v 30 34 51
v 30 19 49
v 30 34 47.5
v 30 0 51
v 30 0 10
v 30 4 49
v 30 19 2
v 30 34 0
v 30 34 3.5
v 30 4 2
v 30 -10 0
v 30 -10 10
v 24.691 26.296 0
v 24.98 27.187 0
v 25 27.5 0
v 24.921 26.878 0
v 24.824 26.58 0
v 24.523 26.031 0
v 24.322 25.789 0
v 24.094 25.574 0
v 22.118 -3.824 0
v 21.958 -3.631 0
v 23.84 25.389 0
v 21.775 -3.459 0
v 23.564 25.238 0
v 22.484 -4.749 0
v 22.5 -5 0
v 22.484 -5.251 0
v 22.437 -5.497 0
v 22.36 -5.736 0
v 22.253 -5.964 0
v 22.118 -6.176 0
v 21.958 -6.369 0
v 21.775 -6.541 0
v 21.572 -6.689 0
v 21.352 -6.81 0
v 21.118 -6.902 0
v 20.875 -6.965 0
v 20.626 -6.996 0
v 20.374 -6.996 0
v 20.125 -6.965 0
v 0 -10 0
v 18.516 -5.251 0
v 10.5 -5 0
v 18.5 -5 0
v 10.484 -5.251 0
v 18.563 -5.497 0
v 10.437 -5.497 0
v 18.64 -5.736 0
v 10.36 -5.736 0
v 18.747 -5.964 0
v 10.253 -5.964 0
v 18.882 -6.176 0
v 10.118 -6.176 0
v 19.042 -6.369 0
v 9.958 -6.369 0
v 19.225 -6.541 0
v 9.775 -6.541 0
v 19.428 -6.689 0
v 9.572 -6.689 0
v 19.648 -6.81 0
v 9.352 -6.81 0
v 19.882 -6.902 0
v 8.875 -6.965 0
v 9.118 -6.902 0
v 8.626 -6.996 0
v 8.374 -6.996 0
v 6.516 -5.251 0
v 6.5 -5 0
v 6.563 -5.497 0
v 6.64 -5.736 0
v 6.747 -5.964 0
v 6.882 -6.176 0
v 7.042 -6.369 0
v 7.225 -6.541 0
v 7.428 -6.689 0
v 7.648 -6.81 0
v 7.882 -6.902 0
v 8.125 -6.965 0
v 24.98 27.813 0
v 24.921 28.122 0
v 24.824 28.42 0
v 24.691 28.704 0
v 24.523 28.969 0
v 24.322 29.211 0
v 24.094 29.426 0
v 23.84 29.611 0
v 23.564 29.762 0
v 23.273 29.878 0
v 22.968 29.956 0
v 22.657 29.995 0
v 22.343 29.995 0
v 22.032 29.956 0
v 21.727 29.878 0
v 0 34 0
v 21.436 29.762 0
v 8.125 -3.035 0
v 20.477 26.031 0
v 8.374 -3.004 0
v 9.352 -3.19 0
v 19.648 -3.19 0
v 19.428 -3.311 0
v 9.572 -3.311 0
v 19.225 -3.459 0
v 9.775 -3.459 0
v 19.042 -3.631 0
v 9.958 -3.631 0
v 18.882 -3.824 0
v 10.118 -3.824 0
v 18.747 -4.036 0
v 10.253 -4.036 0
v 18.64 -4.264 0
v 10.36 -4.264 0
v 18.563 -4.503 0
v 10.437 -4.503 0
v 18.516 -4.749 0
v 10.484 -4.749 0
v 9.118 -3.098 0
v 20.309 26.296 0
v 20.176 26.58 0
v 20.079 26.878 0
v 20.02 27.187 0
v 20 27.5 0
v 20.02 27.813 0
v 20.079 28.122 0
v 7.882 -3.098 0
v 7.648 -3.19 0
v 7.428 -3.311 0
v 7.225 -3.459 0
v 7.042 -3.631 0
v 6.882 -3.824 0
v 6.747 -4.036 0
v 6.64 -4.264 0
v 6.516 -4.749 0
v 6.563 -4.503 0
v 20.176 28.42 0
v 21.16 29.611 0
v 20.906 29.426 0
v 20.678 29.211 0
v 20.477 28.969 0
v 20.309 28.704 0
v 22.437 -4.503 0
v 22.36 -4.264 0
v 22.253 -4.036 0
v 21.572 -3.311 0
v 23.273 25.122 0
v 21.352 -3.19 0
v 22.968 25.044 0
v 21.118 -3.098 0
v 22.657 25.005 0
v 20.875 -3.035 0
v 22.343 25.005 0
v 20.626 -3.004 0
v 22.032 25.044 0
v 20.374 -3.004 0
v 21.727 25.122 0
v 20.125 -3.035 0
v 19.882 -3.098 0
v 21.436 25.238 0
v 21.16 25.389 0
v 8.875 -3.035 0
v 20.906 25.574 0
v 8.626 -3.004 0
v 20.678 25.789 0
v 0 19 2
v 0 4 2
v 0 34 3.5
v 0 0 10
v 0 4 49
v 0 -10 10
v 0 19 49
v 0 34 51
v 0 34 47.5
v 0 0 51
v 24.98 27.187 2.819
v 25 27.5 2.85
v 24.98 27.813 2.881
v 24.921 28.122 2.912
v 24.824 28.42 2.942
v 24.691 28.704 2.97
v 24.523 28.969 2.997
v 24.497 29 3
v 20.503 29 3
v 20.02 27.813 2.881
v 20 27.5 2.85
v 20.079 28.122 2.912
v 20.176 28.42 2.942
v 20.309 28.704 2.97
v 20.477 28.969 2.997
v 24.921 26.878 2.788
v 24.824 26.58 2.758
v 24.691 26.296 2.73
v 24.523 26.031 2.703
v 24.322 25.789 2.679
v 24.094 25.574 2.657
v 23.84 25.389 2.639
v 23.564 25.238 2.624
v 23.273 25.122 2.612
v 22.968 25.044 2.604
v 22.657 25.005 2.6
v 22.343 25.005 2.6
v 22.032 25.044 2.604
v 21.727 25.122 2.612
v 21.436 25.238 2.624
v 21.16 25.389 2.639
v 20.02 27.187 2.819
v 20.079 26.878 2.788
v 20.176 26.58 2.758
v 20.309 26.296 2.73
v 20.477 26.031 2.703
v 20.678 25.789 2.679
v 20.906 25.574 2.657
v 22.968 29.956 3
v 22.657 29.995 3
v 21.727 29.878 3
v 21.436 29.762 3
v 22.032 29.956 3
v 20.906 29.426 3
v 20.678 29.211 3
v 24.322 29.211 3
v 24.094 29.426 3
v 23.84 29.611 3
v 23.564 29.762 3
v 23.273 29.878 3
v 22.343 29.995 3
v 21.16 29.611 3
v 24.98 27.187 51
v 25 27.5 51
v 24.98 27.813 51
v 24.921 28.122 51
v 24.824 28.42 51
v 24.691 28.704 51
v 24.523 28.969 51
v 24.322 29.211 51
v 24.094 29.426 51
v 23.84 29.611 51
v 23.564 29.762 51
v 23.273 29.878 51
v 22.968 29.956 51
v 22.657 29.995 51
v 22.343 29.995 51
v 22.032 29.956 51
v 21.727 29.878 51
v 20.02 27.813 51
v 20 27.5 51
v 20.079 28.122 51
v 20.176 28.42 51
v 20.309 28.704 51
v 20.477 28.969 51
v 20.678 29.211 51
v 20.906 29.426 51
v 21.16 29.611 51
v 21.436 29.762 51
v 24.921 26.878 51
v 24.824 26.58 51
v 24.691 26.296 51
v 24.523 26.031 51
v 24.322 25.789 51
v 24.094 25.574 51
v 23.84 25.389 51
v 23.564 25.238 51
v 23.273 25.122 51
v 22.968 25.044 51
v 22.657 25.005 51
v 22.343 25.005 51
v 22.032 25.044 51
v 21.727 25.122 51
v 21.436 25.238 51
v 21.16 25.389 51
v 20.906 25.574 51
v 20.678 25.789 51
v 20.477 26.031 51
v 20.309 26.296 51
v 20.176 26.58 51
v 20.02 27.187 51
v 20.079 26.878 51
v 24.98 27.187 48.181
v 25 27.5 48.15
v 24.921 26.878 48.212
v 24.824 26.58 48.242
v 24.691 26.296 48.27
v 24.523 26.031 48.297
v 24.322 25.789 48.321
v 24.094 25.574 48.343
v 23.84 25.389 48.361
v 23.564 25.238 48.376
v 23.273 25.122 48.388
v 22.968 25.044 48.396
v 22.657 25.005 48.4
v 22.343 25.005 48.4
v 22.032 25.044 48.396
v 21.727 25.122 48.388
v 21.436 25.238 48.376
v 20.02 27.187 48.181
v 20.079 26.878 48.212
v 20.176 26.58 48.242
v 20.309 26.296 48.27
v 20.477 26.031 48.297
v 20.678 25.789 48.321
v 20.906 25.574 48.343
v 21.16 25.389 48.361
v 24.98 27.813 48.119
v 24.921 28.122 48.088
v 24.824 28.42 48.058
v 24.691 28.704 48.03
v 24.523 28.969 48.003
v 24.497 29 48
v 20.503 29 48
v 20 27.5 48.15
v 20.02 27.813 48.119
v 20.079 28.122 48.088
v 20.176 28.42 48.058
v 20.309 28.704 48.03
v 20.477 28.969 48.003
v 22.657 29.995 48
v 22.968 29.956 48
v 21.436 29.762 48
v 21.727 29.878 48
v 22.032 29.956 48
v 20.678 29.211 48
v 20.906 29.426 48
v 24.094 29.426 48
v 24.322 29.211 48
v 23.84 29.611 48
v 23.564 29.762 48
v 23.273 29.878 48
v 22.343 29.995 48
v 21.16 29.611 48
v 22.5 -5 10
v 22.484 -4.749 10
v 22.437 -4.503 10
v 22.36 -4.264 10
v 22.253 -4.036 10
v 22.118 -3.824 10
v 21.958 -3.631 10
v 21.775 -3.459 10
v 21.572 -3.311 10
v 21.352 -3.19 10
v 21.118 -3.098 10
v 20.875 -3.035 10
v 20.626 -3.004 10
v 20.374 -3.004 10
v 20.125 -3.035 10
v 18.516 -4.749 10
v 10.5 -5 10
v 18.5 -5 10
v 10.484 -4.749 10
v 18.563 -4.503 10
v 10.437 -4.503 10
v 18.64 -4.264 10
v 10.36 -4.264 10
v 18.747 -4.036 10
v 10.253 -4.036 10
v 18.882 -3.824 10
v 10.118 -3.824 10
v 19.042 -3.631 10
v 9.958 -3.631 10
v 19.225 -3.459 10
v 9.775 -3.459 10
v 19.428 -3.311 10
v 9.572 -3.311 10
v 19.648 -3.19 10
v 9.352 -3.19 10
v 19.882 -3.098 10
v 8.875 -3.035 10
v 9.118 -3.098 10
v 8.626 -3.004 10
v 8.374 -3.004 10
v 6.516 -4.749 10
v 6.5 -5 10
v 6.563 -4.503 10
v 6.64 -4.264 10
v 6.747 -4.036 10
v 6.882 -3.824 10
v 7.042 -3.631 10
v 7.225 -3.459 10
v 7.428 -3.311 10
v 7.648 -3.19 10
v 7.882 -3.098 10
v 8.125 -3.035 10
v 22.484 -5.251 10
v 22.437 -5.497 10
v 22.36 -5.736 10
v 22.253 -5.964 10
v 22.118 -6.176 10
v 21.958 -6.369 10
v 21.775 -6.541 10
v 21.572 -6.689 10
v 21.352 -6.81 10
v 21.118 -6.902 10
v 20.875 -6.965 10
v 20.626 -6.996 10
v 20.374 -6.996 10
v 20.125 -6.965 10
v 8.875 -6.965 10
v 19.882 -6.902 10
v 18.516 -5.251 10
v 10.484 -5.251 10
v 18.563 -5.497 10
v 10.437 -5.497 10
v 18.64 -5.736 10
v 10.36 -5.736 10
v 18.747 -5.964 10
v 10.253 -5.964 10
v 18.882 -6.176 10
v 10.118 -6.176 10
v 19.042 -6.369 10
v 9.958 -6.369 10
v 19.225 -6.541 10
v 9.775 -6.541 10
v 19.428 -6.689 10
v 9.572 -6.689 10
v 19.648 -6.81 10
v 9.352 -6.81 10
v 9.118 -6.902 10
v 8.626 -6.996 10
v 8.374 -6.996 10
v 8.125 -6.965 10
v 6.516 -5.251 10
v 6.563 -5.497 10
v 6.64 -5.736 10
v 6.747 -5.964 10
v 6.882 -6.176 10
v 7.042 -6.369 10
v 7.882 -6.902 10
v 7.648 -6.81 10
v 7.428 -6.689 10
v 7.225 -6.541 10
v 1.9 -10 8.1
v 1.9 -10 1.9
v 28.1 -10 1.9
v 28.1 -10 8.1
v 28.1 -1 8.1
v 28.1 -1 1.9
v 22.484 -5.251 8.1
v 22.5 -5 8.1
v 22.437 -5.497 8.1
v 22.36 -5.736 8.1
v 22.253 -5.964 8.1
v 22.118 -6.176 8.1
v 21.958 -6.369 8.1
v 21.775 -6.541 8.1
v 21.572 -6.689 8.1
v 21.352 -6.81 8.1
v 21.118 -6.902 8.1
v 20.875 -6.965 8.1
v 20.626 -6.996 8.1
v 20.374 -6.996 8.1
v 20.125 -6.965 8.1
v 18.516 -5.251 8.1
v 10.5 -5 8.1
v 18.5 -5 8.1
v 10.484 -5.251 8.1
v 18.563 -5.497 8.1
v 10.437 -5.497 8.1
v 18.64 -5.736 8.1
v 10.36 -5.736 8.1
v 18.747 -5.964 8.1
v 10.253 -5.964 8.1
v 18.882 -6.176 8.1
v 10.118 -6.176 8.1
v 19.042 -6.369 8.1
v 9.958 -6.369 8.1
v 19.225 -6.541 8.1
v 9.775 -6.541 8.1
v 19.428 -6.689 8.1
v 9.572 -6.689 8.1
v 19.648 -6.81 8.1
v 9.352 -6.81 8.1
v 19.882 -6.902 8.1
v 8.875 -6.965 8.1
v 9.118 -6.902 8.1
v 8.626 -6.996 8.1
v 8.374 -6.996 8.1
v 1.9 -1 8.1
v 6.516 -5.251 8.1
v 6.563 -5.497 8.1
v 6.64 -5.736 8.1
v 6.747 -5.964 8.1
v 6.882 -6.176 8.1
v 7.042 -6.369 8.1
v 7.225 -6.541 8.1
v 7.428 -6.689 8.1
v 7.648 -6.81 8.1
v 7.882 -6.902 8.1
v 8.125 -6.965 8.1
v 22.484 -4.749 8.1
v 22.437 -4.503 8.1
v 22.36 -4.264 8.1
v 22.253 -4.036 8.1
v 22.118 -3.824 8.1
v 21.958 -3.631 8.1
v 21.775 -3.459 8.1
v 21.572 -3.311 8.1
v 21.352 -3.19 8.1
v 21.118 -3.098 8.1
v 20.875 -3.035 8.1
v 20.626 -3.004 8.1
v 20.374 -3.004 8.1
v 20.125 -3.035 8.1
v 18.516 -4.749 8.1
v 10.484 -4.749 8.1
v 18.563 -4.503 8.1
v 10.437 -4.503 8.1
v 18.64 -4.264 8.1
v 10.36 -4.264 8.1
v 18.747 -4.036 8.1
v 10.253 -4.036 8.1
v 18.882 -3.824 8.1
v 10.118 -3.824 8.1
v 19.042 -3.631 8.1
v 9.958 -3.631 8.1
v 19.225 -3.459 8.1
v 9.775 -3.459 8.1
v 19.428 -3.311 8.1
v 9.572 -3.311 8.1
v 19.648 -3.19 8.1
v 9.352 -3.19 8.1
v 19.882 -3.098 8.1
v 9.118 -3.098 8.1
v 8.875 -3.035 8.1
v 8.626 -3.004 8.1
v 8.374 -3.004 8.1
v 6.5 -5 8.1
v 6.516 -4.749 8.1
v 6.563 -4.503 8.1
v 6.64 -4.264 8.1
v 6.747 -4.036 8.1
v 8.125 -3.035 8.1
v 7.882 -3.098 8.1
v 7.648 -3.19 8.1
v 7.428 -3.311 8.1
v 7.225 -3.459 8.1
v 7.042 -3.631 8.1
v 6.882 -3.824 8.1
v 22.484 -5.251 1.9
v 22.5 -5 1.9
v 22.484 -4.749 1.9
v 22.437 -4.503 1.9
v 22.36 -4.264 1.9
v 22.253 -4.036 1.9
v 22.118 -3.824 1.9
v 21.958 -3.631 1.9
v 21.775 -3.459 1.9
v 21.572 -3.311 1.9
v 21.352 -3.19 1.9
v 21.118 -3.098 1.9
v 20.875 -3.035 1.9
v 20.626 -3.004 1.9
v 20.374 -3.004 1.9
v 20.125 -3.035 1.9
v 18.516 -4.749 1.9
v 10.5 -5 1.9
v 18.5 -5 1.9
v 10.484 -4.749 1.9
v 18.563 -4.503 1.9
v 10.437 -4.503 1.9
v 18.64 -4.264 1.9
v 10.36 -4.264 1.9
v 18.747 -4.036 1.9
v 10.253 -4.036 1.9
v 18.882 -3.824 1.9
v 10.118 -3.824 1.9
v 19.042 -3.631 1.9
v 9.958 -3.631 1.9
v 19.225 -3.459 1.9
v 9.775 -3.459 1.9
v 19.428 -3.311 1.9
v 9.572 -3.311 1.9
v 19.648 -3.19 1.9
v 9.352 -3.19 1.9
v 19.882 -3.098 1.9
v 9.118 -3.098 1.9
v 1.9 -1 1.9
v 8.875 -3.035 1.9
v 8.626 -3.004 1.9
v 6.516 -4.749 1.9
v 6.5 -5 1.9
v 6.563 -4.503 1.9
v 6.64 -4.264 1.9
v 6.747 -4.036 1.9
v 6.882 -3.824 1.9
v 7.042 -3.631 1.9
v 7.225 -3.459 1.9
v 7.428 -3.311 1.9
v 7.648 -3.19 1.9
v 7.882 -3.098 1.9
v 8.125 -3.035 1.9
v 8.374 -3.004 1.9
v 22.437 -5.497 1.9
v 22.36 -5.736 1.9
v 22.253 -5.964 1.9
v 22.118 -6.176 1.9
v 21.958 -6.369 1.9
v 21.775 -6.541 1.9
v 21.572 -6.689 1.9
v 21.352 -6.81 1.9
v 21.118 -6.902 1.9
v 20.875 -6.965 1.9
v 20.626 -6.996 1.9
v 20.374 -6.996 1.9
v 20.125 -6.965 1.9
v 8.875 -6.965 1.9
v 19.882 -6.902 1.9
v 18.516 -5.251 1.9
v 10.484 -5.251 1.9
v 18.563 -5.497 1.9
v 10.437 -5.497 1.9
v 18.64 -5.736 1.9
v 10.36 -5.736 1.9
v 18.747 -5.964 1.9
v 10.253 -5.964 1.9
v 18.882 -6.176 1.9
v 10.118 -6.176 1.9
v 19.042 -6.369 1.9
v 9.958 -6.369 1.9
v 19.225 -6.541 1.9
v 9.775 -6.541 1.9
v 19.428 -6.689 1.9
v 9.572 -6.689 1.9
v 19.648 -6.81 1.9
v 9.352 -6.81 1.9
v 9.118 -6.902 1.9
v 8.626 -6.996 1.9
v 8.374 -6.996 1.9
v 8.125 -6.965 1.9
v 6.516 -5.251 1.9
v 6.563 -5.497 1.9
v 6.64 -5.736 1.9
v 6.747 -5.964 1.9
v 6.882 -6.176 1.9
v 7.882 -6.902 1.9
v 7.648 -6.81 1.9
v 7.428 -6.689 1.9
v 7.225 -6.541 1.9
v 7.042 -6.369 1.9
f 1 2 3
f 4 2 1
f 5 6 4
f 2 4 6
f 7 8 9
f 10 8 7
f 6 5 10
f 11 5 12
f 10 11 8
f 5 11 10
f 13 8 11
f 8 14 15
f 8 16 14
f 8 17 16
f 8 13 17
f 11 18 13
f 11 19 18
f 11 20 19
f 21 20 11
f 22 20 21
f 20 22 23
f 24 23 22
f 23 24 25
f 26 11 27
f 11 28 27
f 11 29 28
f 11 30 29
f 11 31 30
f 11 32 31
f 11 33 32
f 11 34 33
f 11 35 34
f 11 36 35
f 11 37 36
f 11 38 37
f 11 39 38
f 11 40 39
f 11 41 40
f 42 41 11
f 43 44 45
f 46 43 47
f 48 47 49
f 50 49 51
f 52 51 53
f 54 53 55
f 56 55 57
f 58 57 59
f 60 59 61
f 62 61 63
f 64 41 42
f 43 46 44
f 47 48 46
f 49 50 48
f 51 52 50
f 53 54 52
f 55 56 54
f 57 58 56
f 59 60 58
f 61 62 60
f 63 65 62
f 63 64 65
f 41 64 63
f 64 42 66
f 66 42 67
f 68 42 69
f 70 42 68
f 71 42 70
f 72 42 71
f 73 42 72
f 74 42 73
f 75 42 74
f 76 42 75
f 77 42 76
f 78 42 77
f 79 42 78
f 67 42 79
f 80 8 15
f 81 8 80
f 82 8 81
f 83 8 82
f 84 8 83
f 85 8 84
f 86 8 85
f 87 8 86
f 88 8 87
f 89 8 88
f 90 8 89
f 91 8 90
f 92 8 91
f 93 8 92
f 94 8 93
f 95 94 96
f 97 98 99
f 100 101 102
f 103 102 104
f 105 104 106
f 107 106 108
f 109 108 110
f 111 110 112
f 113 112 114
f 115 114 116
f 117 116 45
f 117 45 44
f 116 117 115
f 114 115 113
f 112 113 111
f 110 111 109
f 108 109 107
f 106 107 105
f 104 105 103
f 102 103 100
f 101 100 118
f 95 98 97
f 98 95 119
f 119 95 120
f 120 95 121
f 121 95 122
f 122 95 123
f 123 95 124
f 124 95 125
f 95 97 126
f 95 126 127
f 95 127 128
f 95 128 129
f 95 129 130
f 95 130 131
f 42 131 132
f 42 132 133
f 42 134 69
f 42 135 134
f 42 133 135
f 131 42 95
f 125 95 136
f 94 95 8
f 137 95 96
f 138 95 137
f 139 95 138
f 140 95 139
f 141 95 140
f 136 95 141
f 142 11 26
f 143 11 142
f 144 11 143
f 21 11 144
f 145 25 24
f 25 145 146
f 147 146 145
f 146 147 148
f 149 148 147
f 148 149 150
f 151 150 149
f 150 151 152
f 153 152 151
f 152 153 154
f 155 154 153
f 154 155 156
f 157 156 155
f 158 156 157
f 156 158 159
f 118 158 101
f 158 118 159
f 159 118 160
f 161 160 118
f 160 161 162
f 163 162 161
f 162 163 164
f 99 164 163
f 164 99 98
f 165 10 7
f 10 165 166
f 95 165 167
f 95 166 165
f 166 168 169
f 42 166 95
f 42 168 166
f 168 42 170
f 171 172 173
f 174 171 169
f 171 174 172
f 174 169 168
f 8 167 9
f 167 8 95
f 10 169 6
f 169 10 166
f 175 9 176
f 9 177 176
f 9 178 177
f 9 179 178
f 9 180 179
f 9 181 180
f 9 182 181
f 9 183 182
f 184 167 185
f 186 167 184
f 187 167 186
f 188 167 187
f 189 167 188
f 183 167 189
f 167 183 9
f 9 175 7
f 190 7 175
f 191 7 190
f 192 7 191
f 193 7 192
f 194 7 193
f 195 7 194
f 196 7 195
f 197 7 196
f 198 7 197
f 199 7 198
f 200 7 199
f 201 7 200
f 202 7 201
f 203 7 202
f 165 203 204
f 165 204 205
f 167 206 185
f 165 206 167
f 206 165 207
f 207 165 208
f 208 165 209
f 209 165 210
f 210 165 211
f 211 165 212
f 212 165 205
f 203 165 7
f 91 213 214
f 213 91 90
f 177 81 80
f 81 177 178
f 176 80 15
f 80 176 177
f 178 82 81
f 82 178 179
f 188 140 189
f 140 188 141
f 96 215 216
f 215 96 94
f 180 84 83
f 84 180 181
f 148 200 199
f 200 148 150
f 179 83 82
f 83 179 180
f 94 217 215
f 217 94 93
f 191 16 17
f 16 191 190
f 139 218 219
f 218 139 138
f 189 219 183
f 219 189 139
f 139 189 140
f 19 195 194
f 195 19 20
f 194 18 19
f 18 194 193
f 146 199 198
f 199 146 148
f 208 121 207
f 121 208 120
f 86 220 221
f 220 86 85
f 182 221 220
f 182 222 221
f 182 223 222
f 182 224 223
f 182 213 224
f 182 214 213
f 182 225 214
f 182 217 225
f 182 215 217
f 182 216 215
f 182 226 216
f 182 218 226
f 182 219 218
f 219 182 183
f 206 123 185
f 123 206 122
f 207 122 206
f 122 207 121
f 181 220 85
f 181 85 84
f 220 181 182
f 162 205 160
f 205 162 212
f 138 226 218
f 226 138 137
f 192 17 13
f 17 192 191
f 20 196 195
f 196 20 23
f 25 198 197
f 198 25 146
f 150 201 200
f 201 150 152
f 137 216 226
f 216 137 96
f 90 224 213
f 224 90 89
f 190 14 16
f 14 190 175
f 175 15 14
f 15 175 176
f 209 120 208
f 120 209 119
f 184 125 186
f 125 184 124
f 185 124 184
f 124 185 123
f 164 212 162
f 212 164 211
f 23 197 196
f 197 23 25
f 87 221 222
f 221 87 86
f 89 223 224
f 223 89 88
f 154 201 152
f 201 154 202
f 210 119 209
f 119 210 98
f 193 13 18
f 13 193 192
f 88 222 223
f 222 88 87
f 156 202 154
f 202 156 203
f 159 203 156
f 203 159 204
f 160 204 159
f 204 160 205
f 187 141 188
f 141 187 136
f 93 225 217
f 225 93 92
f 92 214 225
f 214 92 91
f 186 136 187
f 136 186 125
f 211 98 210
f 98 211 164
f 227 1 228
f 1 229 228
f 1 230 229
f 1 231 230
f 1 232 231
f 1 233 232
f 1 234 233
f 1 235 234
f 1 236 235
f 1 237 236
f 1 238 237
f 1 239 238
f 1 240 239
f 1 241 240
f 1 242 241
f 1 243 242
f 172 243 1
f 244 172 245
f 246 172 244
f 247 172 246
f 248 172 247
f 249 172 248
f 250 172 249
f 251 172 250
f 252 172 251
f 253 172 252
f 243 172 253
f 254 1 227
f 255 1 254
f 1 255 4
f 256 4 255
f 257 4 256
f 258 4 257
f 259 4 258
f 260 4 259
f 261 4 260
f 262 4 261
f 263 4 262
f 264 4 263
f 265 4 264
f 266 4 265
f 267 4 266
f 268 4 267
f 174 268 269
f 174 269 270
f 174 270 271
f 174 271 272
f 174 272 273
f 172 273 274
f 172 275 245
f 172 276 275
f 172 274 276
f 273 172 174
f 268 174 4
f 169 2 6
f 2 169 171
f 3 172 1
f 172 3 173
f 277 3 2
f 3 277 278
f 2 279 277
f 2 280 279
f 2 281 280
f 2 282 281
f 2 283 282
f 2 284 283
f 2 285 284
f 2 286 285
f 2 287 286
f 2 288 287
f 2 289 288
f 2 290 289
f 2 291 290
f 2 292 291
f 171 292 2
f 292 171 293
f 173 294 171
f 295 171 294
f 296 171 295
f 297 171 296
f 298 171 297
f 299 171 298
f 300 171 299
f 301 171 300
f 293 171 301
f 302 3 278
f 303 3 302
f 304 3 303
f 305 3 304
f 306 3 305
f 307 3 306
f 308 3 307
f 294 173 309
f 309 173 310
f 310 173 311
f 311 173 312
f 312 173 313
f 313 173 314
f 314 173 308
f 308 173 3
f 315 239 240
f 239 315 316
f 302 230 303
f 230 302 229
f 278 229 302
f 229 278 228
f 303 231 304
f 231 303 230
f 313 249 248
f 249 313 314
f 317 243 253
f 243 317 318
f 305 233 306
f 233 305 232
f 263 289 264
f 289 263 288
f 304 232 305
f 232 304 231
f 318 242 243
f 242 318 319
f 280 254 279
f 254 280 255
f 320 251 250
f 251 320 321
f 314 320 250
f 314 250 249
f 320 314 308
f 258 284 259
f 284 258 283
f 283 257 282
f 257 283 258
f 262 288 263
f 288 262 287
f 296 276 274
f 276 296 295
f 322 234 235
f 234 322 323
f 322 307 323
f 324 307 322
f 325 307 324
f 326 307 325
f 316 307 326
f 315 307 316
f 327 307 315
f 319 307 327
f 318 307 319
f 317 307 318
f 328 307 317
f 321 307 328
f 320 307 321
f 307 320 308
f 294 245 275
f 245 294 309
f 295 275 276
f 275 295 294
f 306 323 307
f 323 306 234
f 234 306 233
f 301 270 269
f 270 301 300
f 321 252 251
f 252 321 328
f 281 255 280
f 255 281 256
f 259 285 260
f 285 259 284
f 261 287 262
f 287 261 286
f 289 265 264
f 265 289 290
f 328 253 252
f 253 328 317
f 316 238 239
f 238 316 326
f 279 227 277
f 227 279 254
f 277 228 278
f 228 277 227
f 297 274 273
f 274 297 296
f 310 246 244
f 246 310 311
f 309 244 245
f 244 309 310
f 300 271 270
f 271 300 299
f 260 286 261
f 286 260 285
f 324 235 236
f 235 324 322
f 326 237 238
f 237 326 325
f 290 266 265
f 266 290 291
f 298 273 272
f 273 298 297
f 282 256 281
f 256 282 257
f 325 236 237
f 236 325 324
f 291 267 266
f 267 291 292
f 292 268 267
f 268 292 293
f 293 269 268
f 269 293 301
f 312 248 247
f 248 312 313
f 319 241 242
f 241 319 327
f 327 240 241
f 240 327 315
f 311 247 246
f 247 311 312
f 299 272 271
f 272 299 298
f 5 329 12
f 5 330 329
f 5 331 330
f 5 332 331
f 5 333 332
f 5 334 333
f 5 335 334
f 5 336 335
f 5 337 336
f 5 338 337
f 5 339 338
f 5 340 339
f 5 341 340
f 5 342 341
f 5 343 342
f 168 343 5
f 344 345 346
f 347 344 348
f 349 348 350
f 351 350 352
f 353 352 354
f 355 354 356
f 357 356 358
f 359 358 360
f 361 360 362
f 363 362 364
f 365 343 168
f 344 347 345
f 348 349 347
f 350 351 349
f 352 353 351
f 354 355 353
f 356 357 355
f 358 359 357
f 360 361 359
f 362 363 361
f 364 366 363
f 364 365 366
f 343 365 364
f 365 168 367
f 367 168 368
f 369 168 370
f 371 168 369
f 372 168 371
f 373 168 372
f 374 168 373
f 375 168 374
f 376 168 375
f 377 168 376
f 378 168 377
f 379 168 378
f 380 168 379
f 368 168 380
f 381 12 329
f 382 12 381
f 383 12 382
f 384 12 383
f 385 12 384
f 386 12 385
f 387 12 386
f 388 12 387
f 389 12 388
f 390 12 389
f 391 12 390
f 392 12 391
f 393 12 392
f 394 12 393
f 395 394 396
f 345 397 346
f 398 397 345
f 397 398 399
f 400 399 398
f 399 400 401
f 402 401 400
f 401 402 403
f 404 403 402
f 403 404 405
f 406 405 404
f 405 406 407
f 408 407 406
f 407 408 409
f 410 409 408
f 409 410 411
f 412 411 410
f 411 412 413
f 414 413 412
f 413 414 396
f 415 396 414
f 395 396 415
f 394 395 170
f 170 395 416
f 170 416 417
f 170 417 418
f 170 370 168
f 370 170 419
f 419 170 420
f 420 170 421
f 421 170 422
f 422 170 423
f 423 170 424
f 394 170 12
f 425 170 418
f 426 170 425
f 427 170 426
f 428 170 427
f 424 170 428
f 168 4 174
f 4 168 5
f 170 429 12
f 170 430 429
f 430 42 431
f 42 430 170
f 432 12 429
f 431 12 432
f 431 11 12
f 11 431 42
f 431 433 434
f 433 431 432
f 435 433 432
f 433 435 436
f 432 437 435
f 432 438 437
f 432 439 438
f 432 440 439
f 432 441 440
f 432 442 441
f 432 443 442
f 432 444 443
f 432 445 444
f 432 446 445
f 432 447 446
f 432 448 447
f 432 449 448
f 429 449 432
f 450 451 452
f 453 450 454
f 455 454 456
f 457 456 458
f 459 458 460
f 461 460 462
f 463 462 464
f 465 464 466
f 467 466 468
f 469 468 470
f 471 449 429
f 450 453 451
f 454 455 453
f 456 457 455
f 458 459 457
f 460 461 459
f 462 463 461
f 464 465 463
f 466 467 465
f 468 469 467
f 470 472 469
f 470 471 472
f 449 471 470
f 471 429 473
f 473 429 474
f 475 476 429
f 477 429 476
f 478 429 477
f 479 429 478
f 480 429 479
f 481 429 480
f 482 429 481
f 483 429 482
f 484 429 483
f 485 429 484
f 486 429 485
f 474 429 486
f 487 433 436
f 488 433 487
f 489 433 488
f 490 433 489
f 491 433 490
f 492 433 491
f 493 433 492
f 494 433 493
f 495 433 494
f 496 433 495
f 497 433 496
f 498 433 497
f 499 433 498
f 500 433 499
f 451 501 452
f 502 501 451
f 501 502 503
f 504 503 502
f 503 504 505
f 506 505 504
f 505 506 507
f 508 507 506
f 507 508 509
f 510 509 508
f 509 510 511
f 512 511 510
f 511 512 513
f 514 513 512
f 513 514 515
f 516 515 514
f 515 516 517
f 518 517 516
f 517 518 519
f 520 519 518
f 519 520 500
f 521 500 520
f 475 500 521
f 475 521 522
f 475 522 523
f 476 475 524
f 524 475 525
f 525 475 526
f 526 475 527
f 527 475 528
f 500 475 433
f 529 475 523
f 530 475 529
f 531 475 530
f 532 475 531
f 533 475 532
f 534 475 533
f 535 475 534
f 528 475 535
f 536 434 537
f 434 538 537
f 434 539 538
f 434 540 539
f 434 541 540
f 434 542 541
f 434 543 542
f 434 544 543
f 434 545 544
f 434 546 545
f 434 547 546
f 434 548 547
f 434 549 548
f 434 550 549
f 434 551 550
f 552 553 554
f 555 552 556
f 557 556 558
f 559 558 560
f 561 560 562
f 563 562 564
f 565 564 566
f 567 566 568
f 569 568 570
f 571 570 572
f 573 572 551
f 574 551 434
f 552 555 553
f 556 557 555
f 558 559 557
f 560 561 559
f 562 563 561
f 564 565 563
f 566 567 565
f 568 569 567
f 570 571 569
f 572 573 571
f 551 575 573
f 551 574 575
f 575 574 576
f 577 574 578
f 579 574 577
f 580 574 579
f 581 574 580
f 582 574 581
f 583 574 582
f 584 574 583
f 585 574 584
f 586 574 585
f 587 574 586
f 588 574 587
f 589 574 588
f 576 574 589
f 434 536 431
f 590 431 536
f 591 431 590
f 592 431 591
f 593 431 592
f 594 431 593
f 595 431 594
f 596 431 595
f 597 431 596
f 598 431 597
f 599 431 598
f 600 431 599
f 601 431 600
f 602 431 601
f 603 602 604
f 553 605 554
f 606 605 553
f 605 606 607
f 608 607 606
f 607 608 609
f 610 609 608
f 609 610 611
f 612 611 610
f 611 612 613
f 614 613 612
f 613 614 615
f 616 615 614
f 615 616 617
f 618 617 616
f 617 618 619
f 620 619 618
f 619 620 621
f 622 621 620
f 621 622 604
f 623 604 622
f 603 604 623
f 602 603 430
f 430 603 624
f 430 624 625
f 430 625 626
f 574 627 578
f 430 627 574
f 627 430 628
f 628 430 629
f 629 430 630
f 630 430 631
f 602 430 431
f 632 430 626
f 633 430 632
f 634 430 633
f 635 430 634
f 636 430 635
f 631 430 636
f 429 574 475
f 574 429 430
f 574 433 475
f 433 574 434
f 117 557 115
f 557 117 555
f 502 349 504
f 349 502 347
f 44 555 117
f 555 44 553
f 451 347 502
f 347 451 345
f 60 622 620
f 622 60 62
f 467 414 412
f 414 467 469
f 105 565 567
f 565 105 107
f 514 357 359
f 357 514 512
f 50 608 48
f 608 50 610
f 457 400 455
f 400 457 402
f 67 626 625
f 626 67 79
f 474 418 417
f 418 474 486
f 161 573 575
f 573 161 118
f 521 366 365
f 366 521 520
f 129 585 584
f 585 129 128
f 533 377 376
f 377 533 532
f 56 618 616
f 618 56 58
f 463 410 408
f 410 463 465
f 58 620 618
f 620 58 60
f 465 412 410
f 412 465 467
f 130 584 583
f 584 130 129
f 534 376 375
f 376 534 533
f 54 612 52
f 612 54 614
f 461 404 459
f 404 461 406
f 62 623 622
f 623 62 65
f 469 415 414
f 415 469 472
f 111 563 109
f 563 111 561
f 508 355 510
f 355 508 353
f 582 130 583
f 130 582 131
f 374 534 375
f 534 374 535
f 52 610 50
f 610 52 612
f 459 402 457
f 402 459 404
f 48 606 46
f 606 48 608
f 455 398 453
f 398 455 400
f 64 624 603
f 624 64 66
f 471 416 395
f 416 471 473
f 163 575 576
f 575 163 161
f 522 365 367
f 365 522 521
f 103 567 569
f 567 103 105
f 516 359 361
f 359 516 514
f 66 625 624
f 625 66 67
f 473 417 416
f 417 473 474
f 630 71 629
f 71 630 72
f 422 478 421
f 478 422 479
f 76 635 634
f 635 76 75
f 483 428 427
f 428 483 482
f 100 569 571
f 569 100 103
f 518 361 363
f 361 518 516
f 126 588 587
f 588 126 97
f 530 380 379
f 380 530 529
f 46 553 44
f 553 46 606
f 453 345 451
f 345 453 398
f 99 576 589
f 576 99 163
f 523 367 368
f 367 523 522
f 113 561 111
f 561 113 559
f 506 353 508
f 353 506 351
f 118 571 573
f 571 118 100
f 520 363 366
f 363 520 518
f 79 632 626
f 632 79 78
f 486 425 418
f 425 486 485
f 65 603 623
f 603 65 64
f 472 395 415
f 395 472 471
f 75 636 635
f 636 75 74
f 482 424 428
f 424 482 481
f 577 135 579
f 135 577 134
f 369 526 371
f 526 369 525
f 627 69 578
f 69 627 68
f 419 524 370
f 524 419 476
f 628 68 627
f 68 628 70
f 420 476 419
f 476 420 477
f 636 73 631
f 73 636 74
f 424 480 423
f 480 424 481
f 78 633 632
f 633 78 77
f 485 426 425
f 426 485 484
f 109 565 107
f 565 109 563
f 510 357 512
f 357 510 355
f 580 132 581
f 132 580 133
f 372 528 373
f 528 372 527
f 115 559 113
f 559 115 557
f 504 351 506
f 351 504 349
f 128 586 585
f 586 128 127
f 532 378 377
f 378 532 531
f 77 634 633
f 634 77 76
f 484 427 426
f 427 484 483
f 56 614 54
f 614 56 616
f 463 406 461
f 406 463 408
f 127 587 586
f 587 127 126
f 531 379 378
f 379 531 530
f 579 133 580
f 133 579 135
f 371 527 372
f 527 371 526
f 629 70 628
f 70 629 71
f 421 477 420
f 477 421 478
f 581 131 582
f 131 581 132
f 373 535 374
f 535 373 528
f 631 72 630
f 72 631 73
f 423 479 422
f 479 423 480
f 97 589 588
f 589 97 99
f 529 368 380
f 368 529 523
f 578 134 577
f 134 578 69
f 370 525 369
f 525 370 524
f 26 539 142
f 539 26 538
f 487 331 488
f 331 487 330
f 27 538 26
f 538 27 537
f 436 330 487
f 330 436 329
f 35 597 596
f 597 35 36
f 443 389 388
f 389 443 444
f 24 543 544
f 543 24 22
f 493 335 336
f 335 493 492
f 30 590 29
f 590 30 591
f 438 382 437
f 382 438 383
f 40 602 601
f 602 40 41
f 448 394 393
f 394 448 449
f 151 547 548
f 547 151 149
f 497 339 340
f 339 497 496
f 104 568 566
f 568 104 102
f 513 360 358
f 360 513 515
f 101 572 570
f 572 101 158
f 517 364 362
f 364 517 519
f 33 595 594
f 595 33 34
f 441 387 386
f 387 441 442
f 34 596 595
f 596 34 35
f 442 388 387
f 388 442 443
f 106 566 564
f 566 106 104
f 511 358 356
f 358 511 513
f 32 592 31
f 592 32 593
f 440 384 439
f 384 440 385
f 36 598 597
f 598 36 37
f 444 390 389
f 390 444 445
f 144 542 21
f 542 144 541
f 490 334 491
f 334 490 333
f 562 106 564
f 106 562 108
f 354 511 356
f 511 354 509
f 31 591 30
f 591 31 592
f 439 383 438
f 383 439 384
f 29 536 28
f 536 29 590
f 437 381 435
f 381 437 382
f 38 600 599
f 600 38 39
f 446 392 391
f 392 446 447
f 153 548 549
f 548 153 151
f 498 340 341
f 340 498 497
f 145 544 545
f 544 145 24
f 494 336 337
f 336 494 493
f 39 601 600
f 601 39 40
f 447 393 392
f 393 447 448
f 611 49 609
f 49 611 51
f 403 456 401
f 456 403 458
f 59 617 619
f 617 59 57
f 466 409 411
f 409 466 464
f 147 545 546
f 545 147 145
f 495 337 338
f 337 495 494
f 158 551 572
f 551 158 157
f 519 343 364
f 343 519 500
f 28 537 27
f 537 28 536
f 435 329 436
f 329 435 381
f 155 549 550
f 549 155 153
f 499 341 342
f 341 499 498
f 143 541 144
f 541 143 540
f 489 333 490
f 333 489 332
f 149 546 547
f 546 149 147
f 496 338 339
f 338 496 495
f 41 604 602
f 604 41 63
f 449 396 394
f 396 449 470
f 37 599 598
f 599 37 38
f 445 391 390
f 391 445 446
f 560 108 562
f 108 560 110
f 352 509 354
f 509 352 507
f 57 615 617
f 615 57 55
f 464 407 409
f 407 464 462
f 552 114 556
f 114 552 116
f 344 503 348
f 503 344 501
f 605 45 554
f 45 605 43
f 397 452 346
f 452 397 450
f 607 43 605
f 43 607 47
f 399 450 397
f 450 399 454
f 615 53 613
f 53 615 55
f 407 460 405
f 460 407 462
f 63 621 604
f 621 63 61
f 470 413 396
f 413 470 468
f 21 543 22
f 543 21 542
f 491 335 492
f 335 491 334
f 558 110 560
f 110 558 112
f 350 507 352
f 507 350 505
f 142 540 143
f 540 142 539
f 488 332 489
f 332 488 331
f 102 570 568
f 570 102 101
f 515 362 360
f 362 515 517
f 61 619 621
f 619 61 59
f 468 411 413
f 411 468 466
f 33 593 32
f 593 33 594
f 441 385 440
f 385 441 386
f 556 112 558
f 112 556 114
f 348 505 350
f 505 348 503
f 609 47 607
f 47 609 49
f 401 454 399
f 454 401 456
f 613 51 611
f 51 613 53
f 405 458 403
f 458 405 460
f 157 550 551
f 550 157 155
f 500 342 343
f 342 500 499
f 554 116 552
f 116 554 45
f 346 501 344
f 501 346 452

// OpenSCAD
// this cover will mount over the Ender 3 v2 Neo x-axis housing
// it has a holder for a w25xh4mm arm and M3 screwholes at x6/y4.5 and x18/y4.5

$fn=50;

width=30;
height=51;

frontthick=4;
sidesthick=2;
screwhole=5; // d

ledgelong=10;
ledgethick=4;
ledgescrew=4; // d

module plate() {
    translate([0, frontthick, 0]) {
        difference() {
            union() { // combine side with prism shim
                cube(size=[width, 30, sidesthick]); // 30 is how deep the ender cover is

                translate([0, 15, -sidesthick])
                    rotate(a=[0,180,0]) translate([-width, 0, -2]) prism(width, 15, 1.5); // prism shim
            }

            translate([20+(screwhole/2), 30-(screwhole/2)-4, -1])
                cylinder(h=sidesthick+100, d=screwhole);
        }
    }

}

module prism(l, w, h){
    polyhedron(//pt 0        1        2        3        4        5
        points=[[0,0,0], [l,0,0], [l,w,0], [0,w,0], [0,w,h], [l,w,h]],
        faces=[[0,1,2,3],[5,4,3,2],[0,4,5,1],[0,3,4],[5,2,1]]
    );
}

module ledge() {
        difference() {
                cube(size=[width, ledgelong, 10]);
                translate([1.9, -1, 1.9]) cube(size=[width-4+0.2, ledgelong, 6.2]);

                translate([6.5+2, 5, -1])
                    cylinder(h=12, d=ledgescrew);
                translate([18.5+2, 5, -1])
                    cylinder(12, d=ledgescrew);
        }
}

cube(size=[width, frontthick, height]); // main body

translate([0, 0, height-sidesthick]) plate(); // top plate
mirror([0,0,1]) translate([0, 0, -sidesthick]) plate(); // bottom plate

translate([0,-ledgelong,0]) ledge(); // ledge with box
